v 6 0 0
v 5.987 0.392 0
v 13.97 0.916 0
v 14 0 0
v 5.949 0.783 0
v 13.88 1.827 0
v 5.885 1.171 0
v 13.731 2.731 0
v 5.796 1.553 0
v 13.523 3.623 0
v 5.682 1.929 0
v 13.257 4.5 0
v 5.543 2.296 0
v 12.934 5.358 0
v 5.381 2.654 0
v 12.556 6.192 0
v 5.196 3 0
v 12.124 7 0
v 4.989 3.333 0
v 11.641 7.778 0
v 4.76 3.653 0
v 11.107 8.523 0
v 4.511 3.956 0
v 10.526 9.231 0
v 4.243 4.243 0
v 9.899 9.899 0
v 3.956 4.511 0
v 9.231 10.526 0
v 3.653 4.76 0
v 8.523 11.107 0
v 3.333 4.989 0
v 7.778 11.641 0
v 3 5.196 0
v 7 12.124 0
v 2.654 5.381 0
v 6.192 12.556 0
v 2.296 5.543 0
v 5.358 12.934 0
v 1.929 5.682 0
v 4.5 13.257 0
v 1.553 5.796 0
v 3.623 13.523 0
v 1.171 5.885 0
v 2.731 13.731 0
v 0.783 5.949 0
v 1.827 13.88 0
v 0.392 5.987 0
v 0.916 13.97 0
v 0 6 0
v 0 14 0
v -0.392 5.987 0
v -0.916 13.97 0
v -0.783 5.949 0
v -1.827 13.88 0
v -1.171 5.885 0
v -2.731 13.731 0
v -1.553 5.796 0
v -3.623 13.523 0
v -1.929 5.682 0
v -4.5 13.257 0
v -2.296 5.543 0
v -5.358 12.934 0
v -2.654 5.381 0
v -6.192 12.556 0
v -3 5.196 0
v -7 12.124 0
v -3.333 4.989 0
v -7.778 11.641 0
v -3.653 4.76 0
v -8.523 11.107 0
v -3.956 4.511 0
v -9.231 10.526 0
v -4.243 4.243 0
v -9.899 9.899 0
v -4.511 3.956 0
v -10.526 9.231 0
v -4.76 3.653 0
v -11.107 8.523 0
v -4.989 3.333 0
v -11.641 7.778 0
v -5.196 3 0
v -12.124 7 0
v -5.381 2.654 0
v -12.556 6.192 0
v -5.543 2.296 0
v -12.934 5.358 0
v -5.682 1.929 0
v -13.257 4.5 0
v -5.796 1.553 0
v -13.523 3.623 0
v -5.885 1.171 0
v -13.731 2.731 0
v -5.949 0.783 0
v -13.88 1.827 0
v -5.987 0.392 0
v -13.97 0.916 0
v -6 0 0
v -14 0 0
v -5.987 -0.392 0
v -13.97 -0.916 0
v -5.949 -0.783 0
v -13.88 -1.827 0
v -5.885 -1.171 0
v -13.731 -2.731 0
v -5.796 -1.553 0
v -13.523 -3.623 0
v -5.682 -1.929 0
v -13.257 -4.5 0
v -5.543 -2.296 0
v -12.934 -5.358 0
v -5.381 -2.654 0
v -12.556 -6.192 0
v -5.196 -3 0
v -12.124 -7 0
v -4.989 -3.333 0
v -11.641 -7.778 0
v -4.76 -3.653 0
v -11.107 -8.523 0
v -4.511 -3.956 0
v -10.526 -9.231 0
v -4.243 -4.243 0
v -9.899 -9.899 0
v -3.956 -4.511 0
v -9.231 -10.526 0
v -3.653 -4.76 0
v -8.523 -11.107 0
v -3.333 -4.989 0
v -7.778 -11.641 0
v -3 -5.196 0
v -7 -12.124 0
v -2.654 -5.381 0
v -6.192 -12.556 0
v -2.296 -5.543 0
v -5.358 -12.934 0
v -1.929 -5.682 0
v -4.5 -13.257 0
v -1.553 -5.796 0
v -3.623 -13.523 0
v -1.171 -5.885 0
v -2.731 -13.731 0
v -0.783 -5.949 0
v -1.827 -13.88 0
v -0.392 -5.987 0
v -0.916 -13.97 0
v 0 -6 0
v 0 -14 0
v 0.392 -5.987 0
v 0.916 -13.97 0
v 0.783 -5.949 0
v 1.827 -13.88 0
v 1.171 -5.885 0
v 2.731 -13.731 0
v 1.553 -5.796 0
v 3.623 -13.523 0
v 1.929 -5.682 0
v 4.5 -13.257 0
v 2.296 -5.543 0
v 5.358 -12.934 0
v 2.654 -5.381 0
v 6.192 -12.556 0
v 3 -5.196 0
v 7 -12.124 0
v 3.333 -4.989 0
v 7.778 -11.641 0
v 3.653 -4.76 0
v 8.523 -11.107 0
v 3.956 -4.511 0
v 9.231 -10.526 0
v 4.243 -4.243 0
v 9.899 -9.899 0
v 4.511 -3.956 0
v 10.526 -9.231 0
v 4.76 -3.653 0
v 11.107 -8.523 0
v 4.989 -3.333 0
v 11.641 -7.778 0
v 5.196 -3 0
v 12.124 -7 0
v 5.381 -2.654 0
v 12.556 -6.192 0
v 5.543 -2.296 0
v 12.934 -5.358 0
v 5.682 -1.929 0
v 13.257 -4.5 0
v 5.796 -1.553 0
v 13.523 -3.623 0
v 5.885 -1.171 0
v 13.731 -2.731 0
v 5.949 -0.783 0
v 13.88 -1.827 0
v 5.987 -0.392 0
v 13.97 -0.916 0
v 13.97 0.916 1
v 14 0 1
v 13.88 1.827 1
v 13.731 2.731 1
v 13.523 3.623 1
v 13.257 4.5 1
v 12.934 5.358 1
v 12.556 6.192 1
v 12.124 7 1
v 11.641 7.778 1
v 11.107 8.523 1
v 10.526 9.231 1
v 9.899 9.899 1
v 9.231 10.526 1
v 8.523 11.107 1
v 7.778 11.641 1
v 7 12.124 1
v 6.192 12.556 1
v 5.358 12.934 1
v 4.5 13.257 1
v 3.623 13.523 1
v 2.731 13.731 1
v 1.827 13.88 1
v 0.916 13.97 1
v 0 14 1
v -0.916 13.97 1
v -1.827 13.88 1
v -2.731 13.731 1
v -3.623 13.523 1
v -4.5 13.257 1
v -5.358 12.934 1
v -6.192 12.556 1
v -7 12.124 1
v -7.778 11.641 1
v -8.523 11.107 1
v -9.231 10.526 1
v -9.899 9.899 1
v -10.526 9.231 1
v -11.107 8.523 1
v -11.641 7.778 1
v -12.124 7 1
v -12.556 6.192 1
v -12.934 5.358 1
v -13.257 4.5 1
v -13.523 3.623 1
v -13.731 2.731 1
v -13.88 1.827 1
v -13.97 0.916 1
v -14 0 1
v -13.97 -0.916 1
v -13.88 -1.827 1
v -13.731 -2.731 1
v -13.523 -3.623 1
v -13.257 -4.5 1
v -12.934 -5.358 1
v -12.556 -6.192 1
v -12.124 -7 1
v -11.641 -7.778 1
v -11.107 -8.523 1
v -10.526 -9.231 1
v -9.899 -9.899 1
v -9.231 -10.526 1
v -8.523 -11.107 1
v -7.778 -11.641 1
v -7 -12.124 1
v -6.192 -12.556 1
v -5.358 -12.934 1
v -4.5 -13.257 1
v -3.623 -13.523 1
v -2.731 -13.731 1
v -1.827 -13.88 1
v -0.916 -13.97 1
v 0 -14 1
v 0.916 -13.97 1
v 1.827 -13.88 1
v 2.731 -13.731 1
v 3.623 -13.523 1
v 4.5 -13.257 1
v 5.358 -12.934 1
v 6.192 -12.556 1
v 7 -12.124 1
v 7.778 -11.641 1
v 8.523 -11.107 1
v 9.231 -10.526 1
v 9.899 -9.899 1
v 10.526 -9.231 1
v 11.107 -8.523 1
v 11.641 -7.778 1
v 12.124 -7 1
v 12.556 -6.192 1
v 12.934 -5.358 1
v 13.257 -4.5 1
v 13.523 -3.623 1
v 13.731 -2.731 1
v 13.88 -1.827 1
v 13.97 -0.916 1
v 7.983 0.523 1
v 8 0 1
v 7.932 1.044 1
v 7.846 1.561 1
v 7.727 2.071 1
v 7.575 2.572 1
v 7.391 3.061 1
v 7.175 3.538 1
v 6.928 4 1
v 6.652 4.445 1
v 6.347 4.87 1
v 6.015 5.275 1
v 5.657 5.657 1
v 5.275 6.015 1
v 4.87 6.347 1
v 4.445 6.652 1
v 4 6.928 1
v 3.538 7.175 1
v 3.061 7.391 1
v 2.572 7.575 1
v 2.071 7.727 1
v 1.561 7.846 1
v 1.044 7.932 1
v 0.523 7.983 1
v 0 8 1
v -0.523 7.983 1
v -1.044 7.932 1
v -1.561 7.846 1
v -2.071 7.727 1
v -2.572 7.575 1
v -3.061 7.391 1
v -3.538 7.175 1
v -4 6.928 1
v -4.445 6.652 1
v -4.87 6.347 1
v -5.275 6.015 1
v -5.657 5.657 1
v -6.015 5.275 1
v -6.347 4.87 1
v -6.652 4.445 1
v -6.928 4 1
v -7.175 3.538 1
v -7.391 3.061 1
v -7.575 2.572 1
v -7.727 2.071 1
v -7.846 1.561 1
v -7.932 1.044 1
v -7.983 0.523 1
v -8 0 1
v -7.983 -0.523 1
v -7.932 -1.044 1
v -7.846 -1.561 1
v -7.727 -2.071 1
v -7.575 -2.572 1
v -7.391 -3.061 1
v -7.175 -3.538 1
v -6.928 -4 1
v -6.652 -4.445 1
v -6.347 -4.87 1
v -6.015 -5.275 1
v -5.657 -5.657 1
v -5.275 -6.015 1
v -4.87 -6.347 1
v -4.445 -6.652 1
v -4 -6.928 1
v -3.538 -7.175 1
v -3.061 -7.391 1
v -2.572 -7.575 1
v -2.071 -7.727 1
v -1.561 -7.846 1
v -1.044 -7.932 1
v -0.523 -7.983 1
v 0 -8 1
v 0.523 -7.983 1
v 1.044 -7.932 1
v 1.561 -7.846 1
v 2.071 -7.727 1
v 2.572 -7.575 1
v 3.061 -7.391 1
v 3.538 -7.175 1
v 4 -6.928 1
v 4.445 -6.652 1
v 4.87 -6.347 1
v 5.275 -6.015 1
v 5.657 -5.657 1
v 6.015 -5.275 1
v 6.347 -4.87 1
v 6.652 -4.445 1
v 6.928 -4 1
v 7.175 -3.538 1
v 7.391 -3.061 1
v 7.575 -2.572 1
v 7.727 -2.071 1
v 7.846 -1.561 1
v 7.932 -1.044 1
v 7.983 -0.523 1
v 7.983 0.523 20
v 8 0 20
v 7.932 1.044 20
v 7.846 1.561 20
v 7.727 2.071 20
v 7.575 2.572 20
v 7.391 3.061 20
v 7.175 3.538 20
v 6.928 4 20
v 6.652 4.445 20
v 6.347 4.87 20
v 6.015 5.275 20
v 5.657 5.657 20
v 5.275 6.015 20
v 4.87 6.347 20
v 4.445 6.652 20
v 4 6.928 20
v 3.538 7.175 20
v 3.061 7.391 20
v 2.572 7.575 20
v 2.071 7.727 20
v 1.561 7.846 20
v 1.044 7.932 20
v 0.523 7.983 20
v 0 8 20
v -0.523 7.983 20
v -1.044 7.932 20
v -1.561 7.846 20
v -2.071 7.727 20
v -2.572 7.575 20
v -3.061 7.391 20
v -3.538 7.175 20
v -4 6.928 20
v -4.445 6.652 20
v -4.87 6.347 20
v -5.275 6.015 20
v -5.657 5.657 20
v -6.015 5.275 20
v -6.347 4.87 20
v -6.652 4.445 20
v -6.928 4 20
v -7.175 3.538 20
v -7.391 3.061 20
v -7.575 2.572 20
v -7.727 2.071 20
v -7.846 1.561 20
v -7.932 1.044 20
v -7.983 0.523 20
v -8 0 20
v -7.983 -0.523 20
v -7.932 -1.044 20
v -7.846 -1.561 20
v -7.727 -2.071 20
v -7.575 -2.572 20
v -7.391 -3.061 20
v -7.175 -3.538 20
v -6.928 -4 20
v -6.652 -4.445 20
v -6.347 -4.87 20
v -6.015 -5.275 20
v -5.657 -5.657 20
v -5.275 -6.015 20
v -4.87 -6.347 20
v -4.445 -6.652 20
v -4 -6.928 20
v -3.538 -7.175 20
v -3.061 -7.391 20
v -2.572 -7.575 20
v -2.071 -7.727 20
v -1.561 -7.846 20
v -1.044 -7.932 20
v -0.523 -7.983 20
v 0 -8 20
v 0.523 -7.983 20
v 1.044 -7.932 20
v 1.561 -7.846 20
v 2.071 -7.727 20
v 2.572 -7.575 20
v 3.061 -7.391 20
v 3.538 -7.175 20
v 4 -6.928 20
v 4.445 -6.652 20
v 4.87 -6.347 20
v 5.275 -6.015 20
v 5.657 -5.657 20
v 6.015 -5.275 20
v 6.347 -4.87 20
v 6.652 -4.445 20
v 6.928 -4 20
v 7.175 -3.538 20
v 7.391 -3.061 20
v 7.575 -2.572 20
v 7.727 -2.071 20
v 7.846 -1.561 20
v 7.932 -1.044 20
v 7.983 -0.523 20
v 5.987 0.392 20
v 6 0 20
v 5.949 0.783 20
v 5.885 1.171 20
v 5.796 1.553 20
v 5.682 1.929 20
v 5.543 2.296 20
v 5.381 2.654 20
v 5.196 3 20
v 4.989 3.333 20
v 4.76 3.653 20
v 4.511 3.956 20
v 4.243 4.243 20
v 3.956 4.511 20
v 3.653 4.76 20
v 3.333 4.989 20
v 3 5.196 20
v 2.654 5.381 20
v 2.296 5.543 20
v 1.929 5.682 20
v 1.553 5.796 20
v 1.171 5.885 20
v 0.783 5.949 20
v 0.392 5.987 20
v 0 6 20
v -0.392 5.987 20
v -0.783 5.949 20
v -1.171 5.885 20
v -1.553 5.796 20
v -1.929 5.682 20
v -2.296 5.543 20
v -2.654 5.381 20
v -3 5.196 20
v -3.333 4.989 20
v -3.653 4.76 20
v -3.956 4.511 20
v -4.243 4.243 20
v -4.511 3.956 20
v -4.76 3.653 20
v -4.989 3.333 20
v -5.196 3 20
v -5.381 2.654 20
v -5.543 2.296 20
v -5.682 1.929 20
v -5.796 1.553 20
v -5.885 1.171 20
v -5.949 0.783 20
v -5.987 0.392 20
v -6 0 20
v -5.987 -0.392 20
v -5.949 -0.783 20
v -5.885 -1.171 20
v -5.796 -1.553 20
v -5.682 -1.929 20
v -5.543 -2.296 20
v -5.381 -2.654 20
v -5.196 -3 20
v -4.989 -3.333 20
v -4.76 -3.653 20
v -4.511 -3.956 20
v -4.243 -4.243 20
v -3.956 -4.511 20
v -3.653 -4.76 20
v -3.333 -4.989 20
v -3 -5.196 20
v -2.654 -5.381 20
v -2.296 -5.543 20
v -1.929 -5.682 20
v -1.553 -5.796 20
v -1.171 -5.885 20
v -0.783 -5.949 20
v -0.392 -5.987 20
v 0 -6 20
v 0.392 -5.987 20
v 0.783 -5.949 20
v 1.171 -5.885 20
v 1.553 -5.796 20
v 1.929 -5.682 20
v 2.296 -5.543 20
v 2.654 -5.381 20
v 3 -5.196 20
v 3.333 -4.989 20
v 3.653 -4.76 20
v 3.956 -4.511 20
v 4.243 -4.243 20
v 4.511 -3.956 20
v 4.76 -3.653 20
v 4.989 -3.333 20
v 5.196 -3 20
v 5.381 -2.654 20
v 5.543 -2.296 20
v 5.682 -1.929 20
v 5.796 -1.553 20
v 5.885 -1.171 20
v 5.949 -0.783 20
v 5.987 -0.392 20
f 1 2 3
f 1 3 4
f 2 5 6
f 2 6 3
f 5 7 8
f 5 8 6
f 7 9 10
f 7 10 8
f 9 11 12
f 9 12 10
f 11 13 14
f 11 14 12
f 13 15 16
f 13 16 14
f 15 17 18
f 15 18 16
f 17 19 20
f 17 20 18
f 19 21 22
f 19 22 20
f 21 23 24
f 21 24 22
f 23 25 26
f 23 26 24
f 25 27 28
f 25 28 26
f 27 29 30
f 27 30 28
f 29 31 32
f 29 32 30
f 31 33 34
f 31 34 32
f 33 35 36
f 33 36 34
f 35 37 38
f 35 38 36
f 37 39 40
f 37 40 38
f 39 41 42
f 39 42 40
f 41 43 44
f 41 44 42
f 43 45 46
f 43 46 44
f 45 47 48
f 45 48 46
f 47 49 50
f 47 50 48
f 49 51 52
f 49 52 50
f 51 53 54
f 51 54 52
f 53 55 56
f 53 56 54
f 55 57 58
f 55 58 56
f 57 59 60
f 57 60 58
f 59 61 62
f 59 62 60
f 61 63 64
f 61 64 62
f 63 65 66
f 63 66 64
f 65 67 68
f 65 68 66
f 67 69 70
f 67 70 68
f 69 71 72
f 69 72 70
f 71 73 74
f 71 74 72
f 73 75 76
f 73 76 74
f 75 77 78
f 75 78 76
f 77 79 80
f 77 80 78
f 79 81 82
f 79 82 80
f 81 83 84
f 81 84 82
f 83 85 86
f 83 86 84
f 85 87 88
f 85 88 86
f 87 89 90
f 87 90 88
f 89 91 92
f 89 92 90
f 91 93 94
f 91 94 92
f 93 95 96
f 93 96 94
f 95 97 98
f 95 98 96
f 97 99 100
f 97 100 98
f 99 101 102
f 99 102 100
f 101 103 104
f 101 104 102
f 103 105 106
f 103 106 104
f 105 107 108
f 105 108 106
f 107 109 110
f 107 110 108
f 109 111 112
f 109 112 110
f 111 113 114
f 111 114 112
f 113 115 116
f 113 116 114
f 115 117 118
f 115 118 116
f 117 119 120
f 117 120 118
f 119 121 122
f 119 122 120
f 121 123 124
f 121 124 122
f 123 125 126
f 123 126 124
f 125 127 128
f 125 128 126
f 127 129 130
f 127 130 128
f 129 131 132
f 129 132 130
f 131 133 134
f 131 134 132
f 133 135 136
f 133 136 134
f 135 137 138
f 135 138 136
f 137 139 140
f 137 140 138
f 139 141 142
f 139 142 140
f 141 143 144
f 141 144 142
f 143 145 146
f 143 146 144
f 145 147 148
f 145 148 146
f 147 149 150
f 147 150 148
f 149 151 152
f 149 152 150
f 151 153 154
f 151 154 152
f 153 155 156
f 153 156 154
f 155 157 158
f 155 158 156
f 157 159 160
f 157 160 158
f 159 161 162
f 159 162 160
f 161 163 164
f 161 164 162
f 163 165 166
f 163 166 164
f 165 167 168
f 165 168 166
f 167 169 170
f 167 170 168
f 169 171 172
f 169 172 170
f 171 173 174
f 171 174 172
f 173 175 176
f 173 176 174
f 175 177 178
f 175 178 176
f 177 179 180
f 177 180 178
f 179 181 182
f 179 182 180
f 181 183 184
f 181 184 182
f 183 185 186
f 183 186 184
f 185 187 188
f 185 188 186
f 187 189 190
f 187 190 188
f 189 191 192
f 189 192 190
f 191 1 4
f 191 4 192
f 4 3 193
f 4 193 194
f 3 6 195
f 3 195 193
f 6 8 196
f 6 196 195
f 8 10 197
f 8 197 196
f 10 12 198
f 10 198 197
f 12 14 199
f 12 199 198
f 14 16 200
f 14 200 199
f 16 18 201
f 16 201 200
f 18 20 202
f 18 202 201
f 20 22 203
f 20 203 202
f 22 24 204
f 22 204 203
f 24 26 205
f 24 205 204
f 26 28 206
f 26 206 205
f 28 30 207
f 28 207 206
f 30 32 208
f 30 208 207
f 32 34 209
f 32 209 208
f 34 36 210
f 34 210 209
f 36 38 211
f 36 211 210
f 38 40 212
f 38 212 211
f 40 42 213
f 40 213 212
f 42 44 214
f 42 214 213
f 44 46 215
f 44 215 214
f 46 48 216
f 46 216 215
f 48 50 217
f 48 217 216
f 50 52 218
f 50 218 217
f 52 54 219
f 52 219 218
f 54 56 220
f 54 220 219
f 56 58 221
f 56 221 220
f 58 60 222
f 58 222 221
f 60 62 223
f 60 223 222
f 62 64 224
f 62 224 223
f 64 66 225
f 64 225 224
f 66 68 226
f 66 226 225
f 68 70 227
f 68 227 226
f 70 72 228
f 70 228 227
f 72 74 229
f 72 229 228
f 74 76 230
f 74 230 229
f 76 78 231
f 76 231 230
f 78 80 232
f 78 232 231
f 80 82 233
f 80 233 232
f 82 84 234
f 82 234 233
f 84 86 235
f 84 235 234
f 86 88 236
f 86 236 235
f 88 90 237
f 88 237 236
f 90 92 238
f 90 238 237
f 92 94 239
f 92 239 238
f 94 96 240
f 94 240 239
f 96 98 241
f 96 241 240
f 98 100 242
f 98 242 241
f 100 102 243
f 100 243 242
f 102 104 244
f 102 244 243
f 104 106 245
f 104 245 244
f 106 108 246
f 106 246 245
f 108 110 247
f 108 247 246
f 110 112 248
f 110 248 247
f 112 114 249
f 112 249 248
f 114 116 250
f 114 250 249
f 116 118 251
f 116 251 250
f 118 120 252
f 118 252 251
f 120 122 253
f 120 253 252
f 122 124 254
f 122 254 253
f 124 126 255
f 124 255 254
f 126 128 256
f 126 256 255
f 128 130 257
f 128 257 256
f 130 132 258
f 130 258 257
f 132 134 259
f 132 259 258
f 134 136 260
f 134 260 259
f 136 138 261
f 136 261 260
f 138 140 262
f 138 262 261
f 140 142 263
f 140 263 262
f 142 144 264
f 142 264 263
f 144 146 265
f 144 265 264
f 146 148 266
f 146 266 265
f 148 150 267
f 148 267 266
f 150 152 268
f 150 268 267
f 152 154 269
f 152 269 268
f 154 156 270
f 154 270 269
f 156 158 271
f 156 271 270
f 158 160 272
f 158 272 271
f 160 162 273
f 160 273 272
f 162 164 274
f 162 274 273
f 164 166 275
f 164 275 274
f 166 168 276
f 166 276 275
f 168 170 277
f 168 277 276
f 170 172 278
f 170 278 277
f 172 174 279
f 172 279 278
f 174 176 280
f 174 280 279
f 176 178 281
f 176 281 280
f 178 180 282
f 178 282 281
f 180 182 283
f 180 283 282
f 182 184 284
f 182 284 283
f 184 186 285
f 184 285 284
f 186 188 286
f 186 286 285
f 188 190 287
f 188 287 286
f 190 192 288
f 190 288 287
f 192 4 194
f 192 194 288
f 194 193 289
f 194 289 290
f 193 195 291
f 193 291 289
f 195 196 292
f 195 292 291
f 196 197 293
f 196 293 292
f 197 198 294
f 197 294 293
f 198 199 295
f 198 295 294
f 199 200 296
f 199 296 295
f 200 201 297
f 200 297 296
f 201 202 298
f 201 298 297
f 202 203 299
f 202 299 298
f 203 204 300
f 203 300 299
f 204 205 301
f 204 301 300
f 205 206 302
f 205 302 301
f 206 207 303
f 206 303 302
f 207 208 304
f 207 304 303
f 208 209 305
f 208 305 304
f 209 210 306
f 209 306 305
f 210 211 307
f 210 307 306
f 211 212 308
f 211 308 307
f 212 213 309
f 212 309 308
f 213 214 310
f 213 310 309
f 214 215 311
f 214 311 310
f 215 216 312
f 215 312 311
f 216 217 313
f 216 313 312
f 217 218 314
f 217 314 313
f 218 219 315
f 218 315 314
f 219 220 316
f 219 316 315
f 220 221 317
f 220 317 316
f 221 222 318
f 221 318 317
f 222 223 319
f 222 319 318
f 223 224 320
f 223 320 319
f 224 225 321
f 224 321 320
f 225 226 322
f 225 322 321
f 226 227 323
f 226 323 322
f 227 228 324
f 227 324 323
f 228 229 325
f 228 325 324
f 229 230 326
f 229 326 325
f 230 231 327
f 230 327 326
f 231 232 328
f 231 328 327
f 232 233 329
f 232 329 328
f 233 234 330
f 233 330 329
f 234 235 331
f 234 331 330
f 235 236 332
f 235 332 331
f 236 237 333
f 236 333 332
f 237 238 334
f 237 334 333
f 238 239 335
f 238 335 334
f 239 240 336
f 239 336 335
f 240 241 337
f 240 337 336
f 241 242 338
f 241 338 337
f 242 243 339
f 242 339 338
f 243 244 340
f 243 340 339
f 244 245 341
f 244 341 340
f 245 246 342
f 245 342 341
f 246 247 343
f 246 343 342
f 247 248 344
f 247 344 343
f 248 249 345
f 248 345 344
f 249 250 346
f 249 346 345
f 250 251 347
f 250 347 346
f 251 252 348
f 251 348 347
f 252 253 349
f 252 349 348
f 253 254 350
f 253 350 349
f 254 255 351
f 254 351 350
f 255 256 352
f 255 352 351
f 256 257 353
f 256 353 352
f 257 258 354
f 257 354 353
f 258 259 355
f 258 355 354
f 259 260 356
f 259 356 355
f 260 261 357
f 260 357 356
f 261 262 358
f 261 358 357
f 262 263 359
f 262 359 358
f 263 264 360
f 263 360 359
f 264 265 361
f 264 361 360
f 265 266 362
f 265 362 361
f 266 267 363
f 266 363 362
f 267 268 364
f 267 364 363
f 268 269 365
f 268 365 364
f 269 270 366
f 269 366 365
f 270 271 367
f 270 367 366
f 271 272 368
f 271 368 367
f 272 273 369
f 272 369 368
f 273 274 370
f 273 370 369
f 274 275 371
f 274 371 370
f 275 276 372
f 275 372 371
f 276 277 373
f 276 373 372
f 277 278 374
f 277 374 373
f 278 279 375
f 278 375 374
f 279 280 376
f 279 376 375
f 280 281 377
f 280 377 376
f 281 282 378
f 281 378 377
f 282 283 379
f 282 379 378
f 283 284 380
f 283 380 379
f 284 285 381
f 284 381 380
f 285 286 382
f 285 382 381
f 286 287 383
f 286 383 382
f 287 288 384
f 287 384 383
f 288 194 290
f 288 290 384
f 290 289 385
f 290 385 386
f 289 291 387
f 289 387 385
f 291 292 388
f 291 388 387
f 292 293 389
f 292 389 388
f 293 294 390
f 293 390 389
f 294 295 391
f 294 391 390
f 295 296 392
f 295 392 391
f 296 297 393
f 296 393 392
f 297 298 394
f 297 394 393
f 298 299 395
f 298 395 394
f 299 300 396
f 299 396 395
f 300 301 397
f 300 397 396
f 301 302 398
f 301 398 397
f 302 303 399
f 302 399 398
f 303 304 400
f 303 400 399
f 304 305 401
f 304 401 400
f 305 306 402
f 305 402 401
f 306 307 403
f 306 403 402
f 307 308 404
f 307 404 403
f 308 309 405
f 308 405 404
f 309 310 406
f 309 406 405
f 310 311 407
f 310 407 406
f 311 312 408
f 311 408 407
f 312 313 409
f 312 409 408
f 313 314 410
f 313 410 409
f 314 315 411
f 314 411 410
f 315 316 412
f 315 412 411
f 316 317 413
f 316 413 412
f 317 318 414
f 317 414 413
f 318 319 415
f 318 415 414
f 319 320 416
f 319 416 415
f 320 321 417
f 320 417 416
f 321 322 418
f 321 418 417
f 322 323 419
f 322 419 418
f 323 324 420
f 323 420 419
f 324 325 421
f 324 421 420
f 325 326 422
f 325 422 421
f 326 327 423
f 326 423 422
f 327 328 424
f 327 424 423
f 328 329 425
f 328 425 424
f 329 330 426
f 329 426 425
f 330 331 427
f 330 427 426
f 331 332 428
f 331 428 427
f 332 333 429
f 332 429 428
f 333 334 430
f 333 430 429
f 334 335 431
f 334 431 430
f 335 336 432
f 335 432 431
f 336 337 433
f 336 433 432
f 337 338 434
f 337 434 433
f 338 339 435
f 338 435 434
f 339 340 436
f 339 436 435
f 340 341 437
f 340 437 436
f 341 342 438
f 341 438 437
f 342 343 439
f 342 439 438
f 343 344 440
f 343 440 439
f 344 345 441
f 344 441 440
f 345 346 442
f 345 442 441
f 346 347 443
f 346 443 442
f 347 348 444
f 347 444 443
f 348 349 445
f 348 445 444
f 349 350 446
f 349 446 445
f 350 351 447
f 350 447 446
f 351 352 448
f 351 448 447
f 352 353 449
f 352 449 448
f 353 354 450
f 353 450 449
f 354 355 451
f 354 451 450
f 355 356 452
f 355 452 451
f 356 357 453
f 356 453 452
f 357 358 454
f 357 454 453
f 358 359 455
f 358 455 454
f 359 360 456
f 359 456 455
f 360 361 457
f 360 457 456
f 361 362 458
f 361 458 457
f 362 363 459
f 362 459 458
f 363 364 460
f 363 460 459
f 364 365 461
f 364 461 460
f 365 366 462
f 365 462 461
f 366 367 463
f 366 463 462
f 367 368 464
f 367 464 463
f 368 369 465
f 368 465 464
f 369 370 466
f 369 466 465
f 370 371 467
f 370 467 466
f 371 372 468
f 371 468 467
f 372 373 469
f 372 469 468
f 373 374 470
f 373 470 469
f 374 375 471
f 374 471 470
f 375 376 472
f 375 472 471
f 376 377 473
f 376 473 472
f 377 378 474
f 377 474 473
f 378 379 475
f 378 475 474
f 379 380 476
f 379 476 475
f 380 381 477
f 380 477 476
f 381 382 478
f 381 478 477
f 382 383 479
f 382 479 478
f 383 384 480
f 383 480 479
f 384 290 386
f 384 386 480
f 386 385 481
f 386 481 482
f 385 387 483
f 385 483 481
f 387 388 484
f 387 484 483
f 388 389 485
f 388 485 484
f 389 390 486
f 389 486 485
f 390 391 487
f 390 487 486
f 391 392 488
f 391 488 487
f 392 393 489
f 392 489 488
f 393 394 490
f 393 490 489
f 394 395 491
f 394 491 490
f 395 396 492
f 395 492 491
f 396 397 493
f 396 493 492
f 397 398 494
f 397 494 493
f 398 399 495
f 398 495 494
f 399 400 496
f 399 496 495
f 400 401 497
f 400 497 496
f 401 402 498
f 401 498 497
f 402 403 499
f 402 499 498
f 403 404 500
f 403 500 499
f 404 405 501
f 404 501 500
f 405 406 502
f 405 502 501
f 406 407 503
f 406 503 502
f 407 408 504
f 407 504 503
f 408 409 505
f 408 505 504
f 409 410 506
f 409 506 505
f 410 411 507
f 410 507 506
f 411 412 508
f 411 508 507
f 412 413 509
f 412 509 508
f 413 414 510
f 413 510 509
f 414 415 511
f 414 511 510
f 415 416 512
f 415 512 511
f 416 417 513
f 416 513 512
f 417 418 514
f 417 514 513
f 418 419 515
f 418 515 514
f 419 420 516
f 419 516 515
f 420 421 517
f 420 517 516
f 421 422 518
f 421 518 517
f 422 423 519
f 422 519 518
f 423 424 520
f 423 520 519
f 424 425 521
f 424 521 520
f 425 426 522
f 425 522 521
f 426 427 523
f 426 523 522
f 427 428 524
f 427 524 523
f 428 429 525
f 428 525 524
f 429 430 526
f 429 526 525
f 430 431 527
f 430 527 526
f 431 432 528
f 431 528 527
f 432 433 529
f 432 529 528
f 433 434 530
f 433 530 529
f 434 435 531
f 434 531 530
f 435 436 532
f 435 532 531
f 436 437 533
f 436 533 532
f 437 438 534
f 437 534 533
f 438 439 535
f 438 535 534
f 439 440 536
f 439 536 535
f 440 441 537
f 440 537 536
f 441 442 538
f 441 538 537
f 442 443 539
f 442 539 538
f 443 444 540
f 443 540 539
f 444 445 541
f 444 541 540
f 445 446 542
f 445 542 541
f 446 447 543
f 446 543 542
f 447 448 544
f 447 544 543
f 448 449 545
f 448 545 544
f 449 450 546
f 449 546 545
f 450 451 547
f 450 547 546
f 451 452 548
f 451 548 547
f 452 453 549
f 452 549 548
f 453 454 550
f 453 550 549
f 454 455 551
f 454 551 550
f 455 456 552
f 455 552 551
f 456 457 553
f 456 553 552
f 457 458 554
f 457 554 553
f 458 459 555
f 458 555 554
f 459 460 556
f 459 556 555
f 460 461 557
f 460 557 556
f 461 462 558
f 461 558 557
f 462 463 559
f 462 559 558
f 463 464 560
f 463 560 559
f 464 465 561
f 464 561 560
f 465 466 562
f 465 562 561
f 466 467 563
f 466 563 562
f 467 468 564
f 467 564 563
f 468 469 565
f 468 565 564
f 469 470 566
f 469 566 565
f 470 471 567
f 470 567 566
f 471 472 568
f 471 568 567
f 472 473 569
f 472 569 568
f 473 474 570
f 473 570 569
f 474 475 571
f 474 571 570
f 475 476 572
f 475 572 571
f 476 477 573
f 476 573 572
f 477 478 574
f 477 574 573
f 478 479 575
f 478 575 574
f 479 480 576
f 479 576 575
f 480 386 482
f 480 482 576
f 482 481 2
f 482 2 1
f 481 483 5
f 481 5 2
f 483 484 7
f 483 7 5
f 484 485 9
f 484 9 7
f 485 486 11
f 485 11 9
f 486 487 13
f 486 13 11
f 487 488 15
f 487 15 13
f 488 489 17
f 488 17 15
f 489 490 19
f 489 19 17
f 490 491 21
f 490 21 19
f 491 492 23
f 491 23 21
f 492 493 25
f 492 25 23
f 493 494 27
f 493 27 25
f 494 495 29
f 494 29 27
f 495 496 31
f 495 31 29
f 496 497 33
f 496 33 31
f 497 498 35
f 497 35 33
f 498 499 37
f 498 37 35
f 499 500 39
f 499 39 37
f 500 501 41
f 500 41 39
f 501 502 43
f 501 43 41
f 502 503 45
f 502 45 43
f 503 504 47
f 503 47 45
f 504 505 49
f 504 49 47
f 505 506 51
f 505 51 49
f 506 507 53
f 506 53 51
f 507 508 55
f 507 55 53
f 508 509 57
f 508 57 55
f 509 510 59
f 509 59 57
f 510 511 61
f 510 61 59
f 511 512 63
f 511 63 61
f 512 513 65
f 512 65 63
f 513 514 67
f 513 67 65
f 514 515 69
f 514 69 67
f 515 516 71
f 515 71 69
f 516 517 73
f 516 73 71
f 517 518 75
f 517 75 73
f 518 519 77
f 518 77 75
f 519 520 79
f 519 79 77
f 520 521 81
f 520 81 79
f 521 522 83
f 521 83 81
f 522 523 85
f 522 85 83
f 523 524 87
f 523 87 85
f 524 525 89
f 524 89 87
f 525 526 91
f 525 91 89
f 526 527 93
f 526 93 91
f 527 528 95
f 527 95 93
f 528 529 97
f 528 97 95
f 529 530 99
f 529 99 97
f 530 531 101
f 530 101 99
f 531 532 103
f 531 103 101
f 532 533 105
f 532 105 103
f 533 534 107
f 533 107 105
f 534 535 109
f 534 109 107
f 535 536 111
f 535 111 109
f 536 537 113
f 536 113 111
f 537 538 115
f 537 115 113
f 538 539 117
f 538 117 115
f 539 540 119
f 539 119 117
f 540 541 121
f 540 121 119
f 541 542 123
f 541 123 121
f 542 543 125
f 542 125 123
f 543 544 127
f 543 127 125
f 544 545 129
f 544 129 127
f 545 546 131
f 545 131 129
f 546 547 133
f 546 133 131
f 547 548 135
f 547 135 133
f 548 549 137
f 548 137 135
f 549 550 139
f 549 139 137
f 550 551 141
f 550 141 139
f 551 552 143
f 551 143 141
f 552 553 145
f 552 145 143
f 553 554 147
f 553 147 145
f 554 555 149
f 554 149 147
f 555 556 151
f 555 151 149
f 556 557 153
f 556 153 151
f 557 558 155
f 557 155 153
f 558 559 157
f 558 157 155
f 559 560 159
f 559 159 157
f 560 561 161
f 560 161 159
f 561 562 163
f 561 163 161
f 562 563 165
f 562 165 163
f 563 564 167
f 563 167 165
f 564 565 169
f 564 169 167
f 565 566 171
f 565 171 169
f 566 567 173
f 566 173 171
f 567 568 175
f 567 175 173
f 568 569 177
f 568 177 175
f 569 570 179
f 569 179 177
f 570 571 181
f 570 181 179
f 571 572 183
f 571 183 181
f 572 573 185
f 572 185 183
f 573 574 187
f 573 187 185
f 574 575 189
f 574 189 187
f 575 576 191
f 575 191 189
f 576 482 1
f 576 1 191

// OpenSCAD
// Original MechIntel educational model. CC0-1.0. Units: mm.
// Not a standardized or load-rated component.
$fn=96;
// Section points: [radius, height], mm. Edit to change the profile.
section=[[6, 0], [14, 0], [14, 1], [8, 1], [8, 20], [6, 20]];
rotate_extrude($fn=96) polygon(points=section);
